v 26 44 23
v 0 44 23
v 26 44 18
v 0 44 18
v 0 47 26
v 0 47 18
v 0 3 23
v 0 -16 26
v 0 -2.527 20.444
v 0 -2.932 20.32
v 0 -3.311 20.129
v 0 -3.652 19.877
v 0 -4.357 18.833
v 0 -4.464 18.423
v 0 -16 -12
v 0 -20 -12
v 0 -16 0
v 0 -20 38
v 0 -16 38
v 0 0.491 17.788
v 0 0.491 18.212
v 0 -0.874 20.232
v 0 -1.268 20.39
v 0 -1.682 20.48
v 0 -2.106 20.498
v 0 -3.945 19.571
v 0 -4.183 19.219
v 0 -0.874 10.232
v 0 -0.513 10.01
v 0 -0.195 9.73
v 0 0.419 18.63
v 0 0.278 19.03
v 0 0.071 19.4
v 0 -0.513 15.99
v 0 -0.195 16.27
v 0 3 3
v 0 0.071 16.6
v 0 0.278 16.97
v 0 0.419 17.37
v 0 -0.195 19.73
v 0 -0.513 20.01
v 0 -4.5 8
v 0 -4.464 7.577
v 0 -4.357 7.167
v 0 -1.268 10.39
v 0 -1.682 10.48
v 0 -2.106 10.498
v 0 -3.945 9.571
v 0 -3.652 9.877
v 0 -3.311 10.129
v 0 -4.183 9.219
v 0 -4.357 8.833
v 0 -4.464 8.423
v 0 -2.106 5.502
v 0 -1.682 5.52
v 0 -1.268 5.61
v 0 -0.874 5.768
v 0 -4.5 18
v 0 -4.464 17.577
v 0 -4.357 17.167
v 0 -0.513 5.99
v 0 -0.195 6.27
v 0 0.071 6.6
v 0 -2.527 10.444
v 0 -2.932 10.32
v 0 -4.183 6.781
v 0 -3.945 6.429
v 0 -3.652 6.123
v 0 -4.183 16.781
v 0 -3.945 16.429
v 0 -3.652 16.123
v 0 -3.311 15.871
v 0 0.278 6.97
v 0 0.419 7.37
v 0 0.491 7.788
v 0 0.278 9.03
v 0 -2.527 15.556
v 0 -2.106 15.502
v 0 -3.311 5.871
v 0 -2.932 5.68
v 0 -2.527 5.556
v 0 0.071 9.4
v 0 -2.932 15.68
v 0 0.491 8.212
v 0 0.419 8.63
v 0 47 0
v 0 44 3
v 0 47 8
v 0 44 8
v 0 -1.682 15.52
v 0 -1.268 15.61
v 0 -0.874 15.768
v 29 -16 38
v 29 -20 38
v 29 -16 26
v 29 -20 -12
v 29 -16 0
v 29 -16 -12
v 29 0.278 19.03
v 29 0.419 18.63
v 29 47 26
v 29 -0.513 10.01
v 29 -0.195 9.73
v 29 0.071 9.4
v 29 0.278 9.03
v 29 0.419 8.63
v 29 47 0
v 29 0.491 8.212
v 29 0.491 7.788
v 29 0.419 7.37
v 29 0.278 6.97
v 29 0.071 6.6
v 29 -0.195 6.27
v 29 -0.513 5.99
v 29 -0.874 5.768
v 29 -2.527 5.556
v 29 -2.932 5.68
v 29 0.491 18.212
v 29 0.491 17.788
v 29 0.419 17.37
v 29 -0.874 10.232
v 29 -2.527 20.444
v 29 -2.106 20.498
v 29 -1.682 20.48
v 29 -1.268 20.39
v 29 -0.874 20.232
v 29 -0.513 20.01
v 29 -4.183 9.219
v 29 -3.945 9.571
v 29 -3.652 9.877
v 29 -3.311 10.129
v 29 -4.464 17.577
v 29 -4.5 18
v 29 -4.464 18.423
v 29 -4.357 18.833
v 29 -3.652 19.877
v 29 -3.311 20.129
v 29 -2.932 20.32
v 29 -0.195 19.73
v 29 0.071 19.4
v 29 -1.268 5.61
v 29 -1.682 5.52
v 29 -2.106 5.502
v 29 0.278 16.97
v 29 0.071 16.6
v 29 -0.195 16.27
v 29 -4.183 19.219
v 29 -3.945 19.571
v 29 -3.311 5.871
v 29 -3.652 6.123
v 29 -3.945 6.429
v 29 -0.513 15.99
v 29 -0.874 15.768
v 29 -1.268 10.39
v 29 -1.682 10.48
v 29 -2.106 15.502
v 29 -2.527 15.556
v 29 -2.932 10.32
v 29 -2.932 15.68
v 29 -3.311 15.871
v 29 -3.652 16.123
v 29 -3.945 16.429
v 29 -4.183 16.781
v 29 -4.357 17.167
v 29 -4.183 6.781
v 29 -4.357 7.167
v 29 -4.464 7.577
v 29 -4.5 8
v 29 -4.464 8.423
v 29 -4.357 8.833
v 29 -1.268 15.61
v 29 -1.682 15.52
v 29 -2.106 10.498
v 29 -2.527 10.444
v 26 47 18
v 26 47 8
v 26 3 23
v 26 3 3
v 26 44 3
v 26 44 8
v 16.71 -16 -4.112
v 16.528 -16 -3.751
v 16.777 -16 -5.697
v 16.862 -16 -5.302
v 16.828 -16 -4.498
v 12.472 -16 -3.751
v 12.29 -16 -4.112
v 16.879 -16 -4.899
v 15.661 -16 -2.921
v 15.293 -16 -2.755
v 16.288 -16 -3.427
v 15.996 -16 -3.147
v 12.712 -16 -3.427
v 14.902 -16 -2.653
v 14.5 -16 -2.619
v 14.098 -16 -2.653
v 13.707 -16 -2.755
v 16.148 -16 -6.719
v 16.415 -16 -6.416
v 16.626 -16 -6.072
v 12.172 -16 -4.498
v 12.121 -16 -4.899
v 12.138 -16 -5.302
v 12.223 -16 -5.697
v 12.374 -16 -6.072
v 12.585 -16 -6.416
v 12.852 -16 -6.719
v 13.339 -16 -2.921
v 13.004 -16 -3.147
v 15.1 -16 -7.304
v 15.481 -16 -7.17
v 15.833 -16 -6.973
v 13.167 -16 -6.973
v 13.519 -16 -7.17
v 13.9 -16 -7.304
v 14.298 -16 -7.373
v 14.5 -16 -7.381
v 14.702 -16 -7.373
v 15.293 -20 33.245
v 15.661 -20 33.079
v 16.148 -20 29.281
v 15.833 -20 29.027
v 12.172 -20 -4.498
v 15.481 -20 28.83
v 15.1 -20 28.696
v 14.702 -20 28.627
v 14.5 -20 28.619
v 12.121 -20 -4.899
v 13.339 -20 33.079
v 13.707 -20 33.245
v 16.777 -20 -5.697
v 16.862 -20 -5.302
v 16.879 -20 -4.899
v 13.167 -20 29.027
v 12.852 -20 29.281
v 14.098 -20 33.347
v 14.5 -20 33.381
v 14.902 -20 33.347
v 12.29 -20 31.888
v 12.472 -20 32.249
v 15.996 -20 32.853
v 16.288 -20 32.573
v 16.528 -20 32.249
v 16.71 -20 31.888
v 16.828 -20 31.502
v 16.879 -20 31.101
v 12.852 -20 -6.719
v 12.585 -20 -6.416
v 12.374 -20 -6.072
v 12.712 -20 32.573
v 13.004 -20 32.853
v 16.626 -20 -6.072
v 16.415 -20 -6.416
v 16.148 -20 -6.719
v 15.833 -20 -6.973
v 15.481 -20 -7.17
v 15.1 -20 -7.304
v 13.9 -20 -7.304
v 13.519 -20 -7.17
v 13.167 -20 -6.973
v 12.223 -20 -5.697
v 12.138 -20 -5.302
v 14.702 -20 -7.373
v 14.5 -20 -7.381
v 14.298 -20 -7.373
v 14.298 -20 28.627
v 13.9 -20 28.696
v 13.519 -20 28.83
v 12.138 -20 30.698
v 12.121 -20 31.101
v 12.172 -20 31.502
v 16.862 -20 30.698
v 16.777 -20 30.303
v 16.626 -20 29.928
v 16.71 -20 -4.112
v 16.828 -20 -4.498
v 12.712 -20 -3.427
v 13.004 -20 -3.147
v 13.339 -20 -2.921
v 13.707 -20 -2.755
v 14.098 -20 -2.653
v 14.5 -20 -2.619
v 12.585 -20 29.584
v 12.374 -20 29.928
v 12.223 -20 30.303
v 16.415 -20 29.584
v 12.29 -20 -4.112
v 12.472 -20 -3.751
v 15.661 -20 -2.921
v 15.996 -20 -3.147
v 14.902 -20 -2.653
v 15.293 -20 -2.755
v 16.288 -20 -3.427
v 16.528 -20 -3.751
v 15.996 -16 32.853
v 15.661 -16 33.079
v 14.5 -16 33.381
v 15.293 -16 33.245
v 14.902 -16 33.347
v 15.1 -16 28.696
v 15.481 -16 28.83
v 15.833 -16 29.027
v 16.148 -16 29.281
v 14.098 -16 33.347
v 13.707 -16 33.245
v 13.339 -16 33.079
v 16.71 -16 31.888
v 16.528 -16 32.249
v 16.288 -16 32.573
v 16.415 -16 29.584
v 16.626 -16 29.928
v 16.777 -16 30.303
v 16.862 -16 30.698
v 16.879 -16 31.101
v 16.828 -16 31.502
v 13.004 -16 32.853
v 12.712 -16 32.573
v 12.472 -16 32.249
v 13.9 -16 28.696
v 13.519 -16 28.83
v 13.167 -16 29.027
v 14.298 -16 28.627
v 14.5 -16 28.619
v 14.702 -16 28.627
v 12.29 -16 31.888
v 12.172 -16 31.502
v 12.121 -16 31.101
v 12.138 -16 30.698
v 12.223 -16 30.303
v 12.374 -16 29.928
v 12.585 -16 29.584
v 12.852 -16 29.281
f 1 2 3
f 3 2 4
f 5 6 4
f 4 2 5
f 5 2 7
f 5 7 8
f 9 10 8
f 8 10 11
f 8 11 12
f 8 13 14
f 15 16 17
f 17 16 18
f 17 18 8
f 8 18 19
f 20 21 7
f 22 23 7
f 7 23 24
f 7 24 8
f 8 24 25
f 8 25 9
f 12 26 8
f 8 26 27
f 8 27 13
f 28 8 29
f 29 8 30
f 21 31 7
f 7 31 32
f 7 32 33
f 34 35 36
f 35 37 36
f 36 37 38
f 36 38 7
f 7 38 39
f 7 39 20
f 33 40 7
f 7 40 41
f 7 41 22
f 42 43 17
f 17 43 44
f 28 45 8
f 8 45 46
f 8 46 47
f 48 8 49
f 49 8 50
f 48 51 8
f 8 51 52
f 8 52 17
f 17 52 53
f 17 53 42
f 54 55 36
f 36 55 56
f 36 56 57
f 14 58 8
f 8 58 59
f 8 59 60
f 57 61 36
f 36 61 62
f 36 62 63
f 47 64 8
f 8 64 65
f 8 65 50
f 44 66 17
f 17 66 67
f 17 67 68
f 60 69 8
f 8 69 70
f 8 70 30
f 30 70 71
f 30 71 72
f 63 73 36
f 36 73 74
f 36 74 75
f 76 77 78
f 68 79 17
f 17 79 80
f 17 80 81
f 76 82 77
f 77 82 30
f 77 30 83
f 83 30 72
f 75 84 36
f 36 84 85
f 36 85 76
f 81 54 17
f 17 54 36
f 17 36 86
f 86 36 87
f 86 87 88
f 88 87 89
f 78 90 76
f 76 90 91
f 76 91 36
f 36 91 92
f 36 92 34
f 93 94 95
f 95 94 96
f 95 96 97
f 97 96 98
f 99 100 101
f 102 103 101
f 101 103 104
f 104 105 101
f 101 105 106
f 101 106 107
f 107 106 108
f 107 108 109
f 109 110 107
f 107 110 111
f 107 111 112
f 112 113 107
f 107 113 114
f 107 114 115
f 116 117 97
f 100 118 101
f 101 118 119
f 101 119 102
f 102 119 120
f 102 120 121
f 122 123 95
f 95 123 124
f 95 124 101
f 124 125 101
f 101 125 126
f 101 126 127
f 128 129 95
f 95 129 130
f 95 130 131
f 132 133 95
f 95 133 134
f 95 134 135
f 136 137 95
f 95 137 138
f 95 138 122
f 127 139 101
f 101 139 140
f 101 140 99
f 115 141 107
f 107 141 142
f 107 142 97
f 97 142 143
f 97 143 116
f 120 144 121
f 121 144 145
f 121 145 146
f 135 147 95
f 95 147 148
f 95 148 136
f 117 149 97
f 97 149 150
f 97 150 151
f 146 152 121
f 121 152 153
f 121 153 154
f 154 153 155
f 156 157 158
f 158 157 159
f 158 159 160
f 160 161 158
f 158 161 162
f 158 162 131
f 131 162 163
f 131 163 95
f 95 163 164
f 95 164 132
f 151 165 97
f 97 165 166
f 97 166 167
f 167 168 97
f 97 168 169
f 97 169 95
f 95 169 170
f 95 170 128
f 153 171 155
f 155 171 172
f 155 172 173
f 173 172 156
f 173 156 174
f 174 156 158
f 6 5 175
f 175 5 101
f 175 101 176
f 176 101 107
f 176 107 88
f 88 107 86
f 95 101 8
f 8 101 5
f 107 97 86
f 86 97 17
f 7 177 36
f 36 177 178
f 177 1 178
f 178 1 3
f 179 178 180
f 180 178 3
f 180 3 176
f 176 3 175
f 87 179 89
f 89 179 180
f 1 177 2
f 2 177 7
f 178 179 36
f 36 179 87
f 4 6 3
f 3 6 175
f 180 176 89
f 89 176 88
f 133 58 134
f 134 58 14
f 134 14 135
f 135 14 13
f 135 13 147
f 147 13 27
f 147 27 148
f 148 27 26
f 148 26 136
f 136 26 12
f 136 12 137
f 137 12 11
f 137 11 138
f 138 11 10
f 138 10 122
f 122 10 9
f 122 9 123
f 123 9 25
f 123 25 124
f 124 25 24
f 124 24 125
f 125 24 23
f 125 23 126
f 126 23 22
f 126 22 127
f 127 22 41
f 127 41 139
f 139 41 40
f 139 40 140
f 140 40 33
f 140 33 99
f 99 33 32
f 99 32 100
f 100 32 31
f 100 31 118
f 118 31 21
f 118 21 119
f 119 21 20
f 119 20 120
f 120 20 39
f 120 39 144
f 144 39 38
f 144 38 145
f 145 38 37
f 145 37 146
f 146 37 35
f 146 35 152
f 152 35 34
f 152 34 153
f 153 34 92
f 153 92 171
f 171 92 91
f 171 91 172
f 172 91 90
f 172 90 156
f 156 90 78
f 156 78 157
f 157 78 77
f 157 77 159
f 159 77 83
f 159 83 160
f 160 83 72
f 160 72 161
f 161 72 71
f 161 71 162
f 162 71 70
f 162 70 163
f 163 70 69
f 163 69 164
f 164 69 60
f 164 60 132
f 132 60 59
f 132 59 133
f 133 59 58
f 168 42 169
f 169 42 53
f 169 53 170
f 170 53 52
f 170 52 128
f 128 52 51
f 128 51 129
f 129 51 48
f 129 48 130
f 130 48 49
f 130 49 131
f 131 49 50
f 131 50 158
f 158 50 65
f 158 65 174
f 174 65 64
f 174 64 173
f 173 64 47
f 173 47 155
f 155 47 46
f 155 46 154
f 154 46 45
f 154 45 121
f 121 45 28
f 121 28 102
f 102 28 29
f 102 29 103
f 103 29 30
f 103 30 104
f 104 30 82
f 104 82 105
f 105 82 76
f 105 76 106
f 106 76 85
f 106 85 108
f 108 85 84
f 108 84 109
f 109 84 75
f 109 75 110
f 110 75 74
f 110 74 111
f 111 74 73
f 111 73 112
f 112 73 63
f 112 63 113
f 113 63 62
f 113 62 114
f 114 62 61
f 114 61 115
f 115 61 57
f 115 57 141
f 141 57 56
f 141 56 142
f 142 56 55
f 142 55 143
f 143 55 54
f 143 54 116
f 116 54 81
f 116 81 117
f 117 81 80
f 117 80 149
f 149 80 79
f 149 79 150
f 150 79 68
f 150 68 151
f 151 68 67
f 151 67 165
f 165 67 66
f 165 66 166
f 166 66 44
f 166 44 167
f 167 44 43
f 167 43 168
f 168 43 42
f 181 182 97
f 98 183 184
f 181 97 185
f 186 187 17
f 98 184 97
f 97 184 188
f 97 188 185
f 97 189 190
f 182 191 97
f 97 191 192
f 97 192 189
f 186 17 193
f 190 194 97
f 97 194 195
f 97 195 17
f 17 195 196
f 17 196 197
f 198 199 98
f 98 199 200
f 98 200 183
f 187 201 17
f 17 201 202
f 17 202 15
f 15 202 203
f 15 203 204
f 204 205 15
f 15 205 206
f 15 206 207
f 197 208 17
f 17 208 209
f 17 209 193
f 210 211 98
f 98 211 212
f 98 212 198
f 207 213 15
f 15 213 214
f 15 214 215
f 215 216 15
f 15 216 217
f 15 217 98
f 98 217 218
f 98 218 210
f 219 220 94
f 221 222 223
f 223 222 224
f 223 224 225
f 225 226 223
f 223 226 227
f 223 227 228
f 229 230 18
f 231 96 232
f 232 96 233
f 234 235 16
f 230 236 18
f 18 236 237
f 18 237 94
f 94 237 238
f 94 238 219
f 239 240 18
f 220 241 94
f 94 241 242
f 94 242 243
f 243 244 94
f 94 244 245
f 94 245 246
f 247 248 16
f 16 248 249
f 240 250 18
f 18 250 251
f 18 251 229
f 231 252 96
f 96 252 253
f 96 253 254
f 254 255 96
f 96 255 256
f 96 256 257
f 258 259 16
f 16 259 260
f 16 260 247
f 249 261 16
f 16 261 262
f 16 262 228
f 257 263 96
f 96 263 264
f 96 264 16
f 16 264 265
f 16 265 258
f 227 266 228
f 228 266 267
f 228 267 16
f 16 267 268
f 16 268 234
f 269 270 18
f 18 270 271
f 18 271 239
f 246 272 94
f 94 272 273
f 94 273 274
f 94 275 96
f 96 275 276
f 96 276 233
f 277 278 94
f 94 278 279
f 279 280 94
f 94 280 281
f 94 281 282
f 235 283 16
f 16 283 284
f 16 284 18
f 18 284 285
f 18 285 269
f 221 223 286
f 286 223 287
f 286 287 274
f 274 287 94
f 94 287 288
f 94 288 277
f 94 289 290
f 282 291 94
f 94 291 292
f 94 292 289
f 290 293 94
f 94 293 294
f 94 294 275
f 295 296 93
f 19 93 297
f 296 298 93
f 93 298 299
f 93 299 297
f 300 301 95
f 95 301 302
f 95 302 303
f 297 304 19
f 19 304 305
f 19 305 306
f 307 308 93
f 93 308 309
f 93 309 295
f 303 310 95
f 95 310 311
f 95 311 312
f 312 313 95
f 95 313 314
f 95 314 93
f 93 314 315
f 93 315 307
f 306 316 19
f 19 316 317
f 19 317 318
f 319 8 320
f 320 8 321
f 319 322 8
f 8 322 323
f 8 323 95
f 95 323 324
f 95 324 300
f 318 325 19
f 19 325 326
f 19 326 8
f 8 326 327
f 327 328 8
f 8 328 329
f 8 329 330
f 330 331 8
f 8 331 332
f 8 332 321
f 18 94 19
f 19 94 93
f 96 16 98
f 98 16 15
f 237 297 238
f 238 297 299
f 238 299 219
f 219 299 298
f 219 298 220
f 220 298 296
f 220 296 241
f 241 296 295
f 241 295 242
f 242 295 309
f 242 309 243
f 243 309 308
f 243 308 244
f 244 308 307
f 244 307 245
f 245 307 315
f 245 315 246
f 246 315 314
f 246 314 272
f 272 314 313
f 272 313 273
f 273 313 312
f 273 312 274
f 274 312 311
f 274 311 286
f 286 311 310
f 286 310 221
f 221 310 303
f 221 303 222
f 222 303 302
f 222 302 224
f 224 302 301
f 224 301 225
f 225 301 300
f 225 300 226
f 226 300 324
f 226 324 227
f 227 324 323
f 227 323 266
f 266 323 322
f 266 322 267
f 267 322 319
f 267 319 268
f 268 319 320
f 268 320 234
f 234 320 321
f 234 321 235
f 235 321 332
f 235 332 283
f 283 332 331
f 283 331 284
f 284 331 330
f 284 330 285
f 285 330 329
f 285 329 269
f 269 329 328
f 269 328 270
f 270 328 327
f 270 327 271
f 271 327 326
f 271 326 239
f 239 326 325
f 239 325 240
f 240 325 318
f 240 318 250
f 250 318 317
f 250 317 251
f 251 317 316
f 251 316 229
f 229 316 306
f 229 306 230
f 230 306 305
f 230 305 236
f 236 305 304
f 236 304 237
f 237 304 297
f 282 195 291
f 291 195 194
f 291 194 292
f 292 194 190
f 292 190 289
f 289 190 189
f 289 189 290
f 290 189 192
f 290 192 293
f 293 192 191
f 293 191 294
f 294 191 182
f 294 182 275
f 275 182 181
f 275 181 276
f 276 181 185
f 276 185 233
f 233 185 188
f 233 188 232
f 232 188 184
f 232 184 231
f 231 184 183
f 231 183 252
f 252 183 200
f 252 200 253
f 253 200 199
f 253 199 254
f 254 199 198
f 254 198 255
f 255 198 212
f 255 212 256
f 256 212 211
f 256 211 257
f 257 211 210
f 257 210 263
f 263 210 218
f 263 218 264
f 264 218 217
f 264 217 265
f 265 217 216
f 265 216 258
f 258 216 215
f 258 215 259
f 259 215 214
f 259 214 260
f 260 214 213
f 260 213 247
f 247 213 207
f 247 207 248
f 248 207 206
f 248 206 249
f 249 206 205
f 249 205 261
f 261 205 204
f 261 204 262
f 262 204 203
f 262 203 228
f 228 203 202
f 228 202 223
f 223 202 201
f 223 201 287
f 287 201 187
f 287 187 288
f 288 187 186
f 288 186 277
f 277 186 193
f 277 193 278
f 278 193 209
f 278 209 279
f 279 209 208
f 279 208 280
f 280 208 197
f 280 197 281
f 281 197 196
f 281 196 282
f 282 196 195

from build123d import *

# Parameters (mm, degrees)
SKETCH1_W           = 29
SKETCH1_H           = 47
BOSS_EXTRUDE1_DEPTH = 26
SHELL1_T            = -3
SKETCH2_W           = 10
SKETCH2_H           = 8.23076923
CUT_EXTRUDE1_DEPTH  = 26
SKETCH3_W           = 29
SKETCH3_H           = 26
BOSS_EXTRUDE2_DEPTH = 16
SKETCH4_R           = 2.5
CUT_EXTRUDE2_DEPTH  = 62.040969848
SKETCH5_W           = 29
SKETCH5_H           = 50
SKETCH5_R           = 2.38125
BOSS_EXTRUDE3_DEPTH = 4


with BuildPart() as part:
    # Sketch1 → Boss-Extrude1 (new body)
    with BuildSketch(Plane.XY):
        with Locations((14.5, 23.5)):
            Rectangle(SKETCH1_W, SKETCH1_H)
    extrude(amount=BOSS_EXTRUDE1_DEPTH)

    # Shell1
    shell1_openings = [part.faces().sort_by_distance(p)[0] for p in [
        (0, 23.5, 13),
    ]]
    offset(amount=SHELL1_T, openings=shell1_openings, kind=Kind.INTERSECTION)

    # Sketch2 → Cut-Extrude1 (cut)
    with BuildSketch(Plane.ZY):
        with Locations((13, 44)):
            Rectangle(SKETCH2_W, SKETCH2_H)
    extrude(amount=-CUT_EXTRUDE1_DEPTH, mode=Mode.SUBTRACT)

    # Sketch3 → Boss-Extrude2 (add)
    with BuildSketch(Plane.XZ):
        with Locations((14.5, 13)):
            Rectangle(SKETCH3_W, SKETCH3_H)
    extrude(amount=BOSS_EXTRUDE2_DEPTH)

    # Sketch4 → Cut-Extrude2 (cut, through all)
    with BuildSketch(Plane.ZY):
        with Locations(Location((8, -2, 0), (0, 0, 270))):
            Circle(SKETCH4_R)
        with Locations(Location((18, -2, 0), (0, 0, 270))):
            Circle(SKETCH4_R)
    extrude(amount=-CUT_EXTRUDE2_DEPTH, mode=Mode.SUBTRACT)

    # Sketch5 → Boss-Extrude3 (add)
    with BuildSketch(Plane.XZ.offset(16)):
        with Locations((14.5, 13)):
            Rectangle(SKETCH5_W, SKETCH5_H)
        with Locations(Location((14.5, 31, 0), (0, 0, 270))):
            Circle(SKETCH5_R, mode=Mode.SUBTRACT)
        with Locations(Location((14.5, -5, 0), (0, 0, 270))):
            Circle(SKETCH5_R, mode=Mode.SUBTRACT)
    extrude(amount=BOSS_EXTRUDE3_DEPTH)


solid = part.part
